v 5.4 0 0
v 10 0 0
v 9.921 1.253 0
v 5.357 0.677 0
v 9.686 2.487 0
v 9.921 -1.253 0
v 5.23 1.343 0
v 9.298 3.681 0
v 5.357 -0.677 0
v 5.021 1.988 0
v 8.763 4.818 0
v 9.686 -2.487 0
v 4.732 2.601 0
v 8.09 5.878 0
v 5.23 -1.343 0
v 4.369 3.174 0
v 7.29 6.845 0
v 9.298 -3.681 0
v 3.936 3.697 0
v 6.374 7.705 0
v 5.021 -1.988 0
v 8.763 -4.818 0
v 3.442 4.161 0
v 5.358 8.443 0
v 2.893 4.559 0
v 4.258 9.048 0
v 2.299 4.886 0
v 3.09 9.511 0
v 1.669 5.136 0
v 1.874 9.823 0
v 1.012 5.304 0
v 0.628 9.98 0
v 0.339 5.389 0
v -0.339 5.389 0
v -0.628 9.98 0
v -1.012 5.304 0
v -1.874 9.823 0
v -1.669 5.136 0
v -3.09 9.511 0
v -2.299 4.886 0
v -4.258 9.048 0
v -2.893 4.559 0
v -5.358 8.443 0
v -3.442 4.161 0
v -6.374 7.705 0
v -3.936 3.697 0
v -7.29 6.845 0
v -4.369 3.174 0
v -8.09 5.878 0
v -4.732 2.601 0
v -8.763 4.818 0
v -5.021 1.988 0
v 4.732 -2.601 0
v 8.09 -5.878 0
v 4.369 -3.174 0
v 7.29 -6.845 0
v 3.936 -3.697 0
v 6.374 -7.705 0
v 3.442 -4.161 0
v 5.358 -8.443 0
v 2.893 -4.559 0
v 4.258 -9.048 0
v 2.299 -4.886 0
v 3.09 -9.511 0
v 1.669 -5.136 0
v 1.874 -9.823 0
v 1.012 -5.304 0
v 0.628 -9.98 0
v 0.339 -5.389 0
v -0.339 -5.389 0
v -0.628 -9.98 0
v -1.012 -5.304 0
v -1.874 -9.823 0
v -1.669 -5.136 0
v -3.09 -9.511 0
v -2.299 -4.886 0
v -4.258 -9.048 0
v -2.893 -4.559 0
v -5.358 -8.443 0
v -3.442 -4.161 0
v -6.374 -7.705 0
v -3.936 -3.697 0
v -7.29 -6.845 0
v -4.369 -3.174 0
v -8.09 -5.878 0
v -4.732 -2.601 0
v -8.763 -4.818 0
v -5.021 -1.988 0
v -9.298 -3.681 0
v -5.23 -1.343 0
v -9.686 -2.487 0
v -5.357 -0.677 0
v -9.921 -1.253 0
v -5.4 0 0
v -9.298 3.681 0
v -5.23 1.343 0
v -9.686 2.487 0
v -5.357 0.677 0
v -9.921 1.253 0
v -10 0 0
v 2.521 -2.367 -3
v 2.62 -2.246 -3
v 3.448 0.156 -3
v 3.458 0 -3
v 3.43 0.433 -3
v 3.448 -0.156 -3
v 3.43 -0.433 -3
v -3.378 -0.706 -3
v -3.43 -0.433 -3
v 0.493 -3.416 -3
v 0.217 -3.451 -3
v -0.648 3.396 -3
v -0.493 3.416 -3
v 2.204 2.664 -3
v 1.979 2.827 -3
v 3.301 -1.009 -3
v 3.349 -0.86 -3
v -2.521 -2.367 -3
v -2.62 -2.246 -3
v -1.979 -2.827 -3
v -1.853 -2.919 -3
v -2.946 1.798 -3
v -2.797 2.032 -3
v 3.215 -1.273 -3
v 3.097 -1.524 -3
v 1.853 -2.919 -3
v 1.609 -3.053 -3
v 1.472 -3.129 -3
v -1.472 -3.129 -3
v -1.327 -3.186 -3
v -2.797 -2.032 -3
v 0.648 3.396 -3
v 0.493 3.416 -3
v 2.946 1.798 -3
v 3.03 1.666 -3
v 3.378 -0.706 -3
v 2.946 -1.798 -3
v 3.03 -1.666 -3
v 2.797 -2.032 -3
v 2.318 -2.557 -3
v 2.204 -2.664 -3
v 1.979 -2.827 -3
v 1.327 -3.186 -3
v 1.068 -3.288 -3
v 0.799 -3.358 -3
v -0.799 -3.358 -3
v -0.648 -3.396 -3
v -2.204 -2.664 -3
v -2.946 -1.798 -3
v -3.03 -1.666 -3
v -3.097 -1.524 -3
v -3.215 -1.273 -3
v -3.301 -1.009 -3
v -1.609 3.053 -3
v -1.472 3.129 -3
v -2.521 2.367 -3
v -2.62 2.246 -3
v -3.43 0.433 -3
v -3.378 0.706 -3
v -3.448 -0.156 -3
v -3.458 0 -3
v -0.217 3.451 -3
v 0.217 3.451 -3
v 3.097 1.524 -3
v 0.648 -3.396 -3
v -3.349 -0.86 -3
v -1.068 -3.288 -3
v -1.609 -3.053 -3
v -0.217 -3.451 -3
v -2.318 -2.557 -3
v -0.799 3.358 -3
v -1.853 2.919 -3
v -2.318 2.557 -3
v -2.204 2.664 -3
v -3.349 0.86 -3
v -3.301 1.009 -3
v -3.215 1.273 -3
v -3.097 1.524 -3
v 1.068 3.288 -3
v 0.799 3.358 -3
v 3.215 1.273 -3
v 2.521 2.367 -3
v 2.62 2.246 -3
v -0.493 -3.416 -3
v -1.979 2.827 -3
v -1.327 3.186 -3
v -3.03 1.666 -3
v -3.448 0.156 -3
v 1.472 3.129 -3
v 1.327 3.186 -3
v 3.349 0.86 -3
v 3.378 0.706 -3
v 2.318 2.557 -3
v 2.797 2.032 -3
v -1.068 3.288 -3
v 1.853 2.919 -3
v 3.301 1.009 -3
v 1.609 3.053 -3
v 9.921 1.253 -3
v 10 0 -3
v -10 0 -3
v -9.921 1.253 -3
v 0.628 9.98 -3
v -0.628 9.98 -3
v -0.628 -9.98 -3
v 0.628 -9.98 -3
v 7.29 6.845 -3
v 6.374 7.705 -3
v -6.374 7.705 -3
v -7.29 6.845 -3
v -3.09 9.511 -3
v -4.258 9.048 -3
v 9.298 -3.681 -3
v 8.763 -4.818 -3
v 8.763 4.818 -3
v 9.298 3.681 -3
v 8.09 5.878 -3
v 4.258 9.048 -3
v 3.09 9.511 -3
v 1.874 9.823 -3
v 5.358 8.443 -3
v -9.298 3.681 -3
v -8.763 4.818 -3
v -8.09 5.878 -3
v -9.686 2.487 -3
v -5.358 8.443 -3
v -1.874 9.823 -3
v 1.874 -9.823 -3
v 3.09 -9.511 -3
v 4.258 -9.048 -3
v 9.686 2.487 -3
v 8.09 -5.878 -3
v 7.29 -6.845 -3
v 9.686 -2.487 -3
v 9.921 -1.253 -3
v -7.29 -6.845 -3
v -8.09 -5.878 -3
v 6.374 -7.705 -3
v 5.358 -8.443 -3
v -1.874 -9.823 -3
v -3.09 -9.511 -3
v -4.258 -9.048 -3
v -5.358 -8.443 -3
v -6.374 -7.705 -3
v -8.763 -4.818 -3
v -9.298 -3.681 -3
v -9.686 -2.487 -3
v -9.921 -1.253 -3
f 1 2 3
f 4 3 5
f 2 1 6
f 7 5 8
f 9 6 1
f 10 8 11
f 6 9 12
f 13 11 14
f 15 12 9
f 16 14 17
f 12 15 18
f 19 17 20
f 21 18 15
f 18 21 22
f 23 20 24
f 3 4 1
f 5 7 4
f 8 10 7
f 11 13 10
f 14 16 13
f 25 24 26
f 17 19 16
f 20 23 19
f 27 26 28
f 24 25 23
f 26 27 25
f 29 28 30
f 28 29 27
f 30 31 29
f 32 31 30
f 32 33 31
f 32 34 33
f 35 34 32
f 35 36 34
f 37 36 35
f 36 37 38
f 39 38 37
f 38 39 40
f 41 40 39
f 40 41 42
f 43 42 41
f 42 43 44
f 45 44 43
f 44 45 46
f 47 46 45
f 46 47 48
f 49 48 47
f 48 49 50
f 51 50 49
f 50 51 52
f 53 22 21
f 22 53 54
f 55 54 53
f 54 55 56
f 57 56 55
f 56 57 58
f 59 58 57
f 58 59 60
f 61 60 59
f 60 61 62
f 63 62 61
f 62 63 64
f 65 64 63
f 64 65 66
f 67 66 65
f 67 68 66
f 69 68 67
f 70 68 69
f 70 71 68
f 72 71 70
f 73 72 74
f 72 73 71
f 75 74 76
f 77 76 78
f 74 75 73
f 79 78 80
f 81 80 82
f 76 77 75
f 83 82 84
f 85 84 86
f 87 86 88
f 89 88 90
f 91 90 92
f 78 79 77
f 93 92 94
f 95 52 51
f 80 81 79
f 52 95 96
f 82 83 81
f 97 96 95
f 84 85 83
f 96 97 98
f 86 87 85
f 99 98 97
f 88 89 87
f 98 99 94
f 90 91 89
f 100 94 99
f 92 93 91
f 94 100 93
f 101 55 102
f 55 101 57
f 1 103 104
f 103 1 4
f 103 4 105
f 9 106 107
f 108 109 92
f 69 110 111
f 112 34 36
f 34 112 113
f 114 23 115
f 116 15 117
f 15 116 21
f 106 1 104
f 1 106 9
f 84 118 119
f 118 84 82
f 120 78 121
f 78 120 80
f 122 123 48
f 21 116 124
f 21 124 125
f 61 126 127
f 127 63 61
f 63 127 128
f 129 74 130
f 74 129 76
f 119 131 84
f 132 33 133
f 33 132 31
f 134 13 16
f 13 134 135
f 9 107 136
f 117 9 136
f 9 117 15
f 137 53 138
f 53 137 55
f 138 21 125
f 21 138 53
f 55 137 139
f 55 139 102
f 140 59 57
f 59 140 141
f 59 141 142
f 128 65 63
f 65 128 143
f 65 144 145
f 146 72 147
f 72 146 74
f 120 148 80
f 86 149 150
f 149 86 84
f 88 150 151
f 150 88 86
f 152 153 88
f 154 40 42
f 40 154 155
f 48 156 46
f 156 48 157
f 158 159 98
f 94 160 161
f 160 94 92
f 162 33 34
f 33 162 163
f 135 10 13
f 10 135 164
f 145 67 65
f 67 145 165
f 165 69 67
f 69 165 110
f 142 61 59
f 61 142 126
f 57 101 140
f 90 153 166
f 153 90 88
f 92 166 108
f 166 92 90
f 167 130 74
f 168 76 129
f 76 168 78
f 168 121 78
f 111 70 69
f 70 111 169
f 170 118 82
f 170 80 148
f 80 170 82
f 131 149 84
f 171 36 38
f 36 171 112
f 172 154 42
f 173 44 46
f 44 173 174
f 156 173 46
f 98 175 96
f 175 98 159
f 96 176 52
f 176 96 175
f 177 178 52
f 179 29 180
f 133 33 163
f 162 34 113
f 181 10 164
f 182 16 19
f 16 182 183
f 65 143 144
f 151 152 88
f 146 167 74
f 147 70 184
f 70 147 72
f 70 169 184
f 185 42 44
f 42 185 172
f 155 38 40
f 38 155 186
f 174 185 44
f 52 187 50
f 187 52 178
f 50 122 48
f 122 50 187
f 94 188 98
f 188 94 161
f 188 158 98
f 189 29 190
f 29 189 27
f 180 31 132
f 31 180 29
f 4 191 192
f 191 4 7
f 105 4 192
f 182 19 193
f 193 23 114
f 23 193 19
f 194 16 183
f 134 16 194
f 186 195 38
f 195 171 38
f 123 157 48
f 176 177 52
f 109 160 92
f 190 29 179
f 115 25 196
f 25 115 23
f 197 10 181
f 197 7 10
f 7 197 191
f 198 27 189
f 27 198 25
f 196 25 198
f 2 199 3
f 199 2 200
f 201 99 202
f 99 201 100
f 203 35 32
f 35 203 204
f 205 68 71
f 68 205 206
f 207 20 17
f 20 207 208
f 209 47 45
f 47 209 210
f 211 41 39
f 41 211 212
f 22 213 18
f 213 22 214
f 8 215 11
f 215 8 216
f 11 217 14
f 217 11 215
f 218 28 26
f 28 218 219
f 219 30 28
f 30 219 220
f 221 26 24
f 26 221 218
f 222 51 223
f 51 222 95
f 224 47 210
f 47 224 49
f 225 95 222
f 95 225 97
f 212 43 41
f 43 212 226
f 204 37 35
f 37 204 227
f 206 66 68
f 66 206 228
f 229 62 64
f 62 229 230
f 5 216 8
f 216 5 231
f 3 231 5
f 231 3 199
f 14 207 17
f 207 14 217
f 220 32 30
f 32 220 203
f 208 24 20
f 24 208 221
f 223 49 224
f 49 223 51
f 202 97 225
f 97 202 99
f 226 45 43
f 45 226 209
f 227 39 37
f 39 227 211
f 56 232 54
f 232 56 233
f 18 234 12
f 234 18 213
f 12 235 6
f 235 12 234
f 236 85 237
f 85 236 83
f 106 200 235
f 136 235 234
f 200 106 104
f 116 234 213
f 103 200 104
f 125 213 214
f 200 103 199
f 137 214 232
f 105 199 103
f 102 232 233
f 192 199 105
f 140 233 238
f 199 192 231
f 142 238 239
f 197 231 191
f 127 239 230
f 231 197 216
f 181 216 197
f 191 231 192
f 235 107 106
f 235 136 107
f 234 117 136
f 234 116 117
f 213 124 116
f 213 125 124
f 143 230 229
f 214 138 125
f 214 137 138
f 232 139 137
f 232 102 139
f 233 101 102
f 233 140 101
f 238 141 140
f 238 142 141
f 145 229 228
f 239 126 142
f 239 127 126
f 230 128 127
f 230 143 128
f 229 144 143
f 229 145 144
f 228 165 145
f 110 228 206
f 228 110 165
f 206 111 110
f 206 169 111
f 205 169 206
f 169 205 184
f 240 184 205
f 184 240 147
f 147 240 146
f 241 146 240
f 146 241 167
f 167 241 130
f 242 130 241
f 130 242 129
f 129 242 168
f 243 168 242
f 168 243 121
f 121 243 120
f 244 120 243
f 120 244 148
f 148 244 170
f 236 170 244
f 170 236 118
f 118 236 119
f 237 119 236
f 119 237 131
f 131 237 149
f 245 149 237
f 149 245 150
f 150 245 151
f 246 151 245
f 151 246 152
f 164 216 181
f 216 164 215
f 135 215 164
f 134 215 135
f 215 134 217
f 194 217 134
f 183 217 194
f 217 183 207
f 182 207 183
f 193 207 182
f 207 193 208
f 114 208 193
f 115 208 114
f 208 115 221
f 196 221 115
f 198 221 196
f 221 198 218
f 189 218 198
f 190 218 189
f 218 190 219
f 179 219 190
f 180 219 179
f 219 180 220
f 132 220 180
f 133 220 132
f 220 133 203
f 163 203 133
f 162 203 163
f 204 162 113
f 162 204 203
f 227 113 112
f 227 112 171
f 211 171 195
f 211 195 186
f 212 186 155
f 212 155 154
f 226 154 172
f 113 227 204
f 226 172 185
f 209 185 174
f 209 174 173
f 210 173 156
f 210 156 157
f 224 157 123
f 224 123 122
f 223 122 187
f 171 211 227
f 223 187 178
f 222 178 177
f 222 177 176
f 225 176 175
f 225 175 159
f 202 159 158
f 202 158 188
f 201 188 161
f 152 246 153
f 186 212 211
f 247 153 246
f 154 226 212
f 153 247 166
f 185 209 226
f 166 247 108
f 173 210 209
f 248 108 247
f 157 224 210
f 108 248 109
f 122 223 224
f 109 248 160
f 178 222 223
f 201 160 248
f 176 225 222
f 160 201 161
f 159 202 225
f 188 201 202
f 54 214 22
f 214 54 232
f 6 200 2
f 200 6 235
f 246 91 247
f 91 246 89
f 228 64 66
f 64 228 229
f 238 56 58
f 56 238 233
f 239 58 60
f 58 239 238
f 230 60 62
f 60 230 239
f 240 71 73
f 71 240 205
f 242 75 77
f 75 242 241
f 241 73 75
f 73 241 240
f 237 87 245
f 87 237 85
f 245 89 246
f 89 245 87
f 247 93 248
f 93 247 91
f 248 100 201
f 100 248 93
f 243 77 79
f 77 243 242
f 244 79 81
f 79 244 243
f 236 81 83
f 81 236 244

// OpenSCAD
$fn = 50;


difference() {
	union() {
		translate(v = [0, 0, -3.0000000000]) {
			cylinder(h = 3, r = 10.0000000000);
		}
		cylinder(h = 0, r = 20.0000000000);
	}
	union() {
		translate(v = [0, 0, 0]) {
			rotate(a = [0, 0, 0]) {
				difference() {
					union() {
						#translate(v = [0, 0, -3.0000000000]) {
							cylinder(h = 3, r = 2.6000000000);
						}
						#translate(v = [0, 0, -3.9000000000]) {
							cylinder(h = 3.9000000000, r = 10.0000000000, r1 = 2.8750000000, r2 = 5.4000000000);
						}
						#translate(v = [0, 0, -3.0000000000]) {
							cylinder(h = 3, r = 2.8750000000);
						}
						#translate(v = [0, 0, -3.0000000000]) {
							cylinder(h = 3, r = 2.6000000000);
						}
					}
					union();
				}
			}
		}
	}
}
